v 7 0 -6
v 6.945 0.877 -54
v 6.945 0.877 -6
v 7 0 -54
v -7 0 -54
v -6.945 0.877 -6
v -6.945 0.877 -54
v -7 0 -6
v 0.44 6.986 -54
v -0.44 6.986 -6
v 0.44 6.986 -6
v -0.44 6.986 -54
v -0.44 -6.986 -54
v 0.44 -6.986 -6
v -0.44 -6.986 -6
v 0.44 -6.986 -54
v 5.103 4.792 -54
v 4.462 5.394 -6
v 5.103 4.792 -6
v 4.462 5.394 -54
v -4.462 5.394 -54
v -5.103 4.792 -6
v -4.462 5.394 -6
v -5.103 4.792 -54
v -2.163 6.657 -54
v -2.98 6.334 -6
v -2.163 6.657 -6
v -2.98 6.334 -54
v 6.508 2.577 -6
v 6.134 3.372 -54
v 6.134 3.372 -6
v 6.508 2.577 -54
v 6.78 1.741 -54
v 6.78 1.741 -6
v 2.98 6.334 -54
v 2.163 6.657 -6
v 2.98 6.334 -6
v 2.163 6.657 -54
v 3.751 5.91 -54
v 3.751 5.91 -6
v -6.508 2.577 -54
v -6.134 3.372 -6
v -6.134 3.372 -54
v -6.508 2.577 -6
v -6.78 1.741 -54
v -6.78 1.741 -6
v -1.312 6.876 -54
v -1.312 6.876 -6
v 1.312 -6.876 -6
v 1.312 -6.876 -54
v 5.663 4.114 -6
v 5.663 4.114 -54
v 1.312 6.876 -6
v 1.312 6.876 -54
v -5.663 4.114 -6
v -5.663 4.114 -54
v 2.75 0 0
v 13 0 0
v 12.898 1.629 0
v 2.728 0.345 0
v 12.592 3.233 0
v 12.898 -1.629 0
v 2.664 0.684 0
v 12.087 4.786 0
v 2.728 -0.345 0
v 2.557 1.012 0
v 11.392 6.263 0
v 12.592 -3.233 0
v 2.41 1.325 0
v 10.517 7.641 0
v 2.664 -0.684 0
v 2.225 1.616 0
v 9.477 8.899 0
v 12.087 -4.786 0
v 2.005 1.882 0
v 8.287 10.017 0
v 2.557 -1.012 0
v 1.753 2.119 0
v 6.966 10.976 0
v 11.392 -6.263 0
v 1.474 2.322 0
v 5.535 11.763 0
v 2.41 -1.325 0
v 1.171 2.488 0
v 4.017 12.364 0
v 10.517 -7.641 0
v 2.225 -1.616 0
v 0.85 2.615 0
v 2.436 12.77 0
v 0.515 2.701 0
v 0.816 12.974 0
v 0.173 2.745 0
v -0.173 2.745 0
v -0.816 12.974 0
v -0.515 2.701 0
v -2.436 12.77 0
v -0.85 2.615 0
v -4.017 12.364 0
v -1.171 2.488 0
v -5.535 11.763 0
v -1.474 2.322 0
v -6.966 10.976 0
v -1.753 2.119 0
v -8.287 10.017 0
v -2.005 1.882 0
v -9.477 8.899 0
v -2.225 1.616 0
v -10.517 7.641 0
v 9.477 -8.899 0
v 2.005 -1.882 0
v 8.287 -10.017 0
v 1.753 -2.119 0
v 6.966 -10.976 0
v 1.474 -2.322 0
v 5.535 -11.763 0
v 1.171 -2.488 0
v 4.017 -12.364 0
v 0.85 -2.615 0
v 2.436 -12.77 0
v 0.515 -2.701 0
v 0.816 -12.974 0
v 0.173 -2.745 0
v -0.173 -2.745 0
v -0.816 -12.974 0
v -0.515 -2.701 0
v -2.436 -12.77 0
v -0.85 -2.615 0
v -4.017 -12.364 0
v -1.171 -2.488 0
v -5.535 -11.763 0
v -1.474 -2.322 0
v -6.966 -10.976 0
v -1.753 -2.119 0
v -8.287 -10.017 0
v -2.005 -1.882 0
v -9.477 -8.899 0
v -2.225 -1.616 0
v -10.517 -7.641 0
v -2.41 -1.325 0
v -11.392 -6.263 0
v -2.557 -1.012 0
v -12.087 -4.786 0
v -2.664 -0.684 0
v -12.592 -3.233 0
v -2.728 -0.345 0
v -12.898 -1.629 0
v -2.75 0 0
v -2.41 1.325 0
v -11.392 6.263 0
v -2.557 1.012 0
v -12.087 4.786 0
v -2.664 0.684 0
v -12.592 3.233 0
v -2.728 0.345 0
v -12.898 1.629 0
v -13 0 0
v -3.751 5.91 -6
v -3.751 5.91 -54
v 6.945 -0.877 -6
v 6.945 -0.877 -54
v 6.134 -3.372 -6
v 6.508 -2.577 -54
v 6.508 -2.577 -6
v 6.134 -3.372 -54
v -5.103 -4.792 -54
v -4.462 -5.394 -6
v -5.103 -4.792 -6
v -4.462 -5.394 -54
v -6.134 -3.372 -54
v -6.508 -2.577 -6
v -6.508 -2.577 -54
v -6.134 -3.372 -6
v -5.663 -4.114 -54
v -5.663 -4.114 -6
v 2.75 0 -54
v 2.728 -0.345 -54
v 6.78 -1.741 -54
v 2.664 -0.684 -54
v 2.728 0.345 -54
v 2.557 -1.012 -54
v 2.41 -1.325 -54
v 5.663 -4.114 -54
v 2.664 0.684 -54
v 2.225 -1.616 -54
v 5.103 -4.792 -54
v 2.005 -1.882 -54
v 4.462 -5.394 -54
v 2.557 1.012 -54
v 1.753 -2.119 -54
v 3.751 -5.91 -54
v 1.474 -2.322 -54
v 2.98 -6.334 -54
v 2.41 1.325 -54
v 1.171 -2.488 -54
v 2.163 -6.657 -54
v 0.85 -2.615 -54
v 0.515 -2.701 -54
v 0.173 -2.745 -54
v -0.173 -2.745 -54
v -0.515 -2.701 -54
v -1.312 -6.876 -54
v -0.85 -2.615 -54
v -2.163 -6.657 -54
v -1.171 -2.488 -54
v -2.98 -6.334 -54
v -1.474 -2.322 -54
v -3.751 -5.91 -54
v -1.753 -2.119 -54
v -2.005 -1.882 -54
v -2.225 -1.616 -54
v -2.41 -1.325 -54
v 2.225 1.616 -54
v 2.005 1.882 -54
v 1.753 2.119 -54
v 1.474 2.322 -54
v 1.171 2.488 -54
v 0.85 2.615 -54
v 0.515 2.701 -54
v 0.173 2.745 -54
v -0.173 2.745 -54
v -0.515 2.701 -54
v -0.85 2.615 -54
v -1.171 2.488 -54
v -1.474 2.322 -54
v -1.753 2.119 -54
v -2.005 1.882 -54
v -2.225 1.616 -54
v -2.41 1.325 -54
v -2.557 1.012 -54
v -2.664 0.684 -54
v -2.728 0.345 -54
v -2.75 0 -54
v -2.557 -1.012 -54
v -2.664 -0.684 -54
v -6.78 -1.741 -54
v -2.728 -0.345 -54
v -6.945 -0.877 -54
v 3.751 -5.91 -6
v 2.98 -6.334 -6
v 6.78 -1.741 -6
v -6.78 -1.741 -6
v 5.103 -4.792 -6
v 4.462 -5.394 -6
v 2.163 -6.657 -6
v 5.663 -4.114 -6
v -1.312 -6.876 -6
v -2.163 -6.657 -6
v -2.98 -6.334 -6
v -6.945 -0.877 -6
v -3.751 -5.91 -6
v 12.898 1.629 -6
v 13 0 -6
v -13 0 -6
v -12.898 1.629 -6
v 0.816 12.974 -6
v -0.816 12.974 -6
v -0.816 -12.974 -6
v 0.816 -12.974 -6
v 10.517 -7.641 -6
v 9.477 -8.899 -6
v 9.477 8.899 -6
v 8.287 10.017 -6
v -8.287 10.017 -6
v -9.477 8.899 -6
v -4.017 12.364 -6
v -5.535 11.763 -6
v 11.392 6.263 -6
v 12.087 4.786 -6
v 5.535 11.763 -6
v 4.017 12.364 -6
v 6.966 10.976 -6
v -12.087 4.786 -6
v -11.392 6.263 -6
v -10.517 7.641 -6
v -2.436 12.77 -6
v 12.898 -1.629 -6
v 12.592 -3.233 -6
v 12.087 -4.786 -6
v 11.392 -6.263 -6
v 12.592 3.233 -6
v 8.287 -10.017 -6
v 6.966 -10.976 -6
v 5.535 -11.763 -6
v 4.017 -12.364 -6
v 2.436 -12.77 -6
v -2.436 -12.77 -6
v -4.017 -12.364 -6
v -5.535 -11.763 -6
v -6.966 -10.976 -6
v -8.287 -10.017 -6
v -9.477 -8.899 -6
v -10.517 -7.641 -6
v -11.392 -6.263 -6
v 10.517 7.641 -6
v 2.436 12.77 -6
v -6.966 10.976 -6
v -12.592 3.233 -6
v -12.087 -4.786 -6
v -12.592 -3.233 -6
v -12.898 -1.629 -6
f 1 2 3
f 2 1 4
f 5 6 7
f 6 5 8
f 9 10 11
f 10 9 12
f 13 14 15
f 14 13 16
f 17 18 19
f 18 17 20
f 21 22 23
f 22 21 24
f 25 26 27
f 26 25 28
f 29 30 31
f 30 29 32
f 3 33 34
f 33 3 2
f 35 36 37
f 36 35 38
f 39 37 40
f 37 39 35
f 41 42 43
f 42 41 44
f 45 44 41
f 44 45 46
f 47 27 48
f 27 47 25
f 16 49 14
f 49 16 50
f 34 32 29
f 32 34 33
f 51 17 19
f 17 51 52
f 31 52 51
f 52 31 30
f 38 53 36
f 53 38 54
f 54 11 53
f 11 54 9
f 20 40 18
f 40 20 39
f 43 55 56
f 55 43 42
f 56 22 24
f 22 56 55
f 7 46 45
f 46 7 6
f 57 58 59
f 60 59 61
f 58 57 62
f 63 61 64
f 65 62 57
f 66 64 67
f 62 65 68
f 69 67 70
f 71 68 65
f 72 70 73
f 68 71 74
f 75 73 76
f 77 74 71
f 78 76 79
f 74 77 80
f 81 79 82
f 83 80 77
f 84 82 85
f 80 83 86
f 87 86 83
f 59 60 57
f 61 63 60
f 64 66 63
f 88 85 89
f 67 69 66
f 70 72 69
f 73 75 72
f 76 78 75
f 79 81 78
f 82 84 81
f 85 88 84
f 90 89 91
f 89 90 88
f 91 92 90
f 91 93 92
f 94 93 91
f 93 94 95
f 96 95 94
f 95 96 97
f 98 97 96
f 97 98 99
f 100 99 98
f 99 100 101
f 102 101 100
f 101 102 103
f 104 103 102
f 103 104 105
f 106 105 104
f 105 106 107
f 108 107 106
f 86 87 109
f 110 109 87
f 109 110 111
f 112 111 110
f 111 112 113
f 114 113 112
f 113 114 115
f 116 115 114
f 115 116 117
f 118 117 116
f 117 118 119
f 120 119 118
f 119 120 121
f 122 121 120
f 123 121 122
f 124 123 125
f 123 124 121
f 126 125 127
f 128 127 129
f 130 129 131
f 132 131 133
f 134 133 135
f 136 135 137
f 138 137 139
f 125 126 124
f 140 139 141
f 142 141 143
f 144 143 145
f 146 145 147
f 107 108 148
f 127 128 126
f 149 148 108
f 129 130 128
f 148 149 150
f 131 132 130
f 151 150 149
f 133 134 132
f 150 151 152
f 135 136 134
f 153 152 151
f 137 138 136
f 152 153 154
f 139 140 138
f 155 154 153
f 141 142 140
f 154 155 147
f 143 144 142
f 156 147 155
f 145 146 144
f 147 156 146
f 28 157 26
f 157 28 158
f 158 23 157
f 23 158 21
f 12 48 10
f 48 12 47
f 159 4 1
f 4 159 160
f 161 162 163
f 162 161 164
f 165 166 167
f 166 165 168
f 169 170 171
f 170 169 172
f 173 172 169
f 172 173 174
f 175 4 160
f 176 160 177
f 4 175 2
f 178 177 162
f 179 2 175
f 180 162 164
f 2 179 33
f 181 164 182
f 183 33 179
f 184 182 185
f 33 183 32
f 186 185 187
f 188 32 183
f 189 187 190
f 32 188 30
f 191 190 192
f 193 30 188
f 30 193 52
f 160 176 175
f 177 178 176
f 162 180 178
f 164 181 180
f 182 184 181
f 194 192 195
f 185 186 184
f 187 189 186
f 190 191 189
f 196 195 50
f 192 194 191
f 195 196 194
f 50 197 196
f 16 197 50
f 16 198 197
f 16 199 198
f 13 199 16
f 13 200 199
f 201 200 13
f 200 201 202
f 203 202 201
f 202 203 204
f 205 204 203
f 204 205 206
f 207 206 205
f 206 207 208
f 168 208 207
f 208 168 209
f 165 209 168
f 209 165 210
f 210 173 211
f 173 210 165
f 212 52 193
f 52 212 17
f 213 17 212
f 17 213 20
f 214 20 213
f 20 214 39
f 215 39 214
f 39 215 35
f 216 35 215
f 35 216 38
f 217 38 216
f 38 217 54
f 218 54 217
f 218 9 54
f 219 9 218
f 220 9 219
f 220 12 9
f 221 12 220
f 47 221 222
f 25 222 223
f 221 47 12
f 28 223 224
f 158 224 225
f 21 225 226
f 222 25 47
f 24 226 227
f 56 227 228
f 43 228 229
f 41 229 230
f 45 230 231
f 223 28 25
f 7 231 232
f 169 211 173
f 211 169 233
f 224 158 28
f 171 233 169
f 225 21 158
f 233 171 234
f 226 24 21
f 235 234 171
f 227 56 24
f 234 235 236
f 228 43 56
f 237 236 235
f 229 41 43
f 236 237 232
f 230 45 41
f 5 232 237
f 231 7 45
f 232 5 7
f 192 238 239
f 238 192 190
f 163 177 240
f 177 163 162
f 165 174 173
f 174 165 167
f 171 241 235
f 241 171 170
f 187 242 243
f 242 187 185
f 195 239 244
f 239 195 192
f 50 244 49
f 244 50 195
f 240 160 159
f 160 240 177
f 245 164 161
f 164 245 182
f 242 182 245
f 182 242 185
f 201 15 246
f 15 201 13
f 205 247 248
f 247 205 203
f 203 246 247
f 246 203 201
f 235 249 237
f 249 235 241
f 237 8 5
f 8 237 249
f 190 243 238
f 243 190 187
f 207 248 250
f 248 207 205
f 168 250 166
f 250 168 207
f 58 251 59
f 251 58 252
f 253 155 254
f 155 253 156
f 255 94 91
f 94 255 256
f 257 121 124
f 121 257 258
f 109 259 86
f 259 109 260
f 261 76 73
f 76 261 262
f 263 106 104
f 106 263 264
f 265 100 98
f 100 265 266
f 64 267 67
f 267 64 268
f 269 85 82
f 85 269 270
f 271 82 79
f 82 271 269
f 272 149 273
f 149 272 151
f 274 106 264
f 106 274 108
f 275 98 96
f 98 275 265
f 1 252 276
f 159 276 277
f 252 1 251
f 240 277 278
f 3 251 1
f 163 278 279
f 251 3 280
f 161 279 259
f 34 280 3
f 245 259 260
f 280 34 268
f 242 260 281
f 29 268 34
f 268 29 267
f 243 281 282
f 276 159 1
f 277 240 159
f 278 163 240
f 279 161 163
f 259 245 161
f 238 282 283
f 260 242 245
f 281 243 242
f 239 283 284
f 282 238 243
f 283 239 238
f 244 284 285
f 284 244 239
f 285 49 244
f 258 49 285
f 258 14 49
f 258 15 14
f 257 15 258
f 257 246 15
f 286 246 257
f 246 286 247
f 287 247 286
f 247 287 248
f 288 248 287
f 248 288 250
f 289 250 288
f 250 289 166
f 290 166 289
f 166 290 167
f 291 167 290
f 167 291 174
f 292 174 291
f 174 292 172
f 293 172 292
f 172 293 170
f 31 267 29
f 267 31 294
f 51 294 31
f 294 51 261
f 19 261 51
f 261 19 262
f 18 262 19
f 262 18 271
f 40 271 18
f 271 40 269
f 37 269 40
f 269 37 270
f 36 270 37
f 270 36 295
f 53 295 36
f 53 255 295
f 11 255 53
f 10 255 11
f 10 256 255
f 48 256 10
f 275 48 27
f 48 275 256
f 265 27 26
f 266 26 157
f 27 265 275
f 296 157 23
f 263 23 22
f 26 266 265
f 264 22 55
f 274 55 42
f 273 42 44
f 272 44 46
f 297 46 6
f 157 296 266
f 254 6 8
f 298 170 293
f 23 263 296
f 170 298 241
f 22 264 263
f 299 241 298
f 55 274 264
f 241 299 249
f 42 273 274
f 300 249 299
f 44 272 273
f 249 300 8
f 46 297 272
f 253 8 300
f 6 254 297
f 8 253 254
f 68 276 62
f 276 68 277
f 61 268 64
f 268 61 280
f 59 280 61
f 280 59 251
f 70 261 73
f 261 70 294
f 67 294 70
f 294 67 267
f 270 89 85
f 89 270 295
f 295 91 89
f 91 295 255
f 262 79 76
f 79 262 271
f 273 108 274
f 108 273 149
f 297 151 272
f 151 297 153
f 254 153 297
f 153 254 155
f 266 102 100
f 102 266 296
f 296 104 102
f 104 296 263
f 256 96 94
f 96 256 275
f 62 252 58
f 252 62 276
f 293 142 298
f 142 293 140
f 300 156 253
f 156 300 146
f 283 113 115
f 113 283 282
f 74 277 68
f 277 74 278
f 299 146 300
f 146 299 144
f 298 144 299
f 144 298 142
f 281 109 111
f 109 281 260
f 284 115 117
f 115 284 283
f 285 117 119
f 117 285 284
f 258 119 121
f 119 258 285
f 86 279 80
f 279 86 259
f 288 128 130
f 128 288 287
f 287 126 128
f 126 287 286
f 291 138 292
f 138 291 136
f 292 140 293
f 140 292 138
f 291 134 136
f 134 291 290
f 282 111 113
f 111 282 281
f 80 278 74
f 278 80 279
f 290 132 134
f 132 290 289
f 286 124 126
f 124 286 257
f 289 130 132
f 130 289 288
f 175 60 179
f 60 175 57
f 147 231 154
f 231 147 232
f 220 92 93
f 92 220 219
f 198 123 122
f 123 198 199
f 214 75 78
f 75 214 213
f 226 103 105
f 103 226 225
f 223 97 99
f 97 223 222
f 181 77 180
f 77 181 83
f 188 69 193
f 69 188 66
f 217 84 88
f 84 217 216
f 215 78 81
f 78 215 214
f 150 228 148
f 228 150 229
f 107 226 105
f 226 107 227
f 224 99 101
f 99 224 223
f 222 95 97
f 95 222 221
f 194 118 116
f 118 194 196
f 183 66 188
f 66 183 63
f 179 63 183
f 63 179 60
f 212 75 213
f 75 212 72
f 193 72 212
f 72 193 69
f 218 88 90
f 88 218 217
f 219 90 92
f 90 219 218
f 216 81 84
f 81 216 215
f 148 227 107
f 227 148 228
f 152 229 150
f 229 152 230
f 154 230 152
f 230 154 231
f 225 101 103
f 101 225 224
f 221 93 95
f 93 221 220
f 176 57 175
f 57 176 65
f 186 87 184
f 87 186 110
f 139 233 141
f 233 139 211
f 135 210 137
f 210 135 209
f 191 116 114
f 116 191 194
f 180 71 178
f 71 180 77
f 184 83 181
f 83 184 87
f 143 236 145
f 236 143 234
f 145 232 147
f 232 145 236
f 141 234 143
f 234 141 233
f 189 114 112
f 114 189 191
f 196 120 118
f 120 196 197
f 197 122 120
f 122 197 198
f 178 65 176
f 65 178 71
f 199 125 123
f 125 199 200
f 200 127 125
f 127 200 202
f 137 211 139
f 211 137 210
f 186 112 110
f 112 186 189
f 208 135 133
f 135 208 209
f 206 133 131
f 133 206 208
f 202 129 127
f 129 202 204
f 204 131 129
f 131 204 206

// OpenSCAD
$fn = 50;


difference() {
	union() {
		translate(v = [0, 0, -54.0000000000]) {
			cylinder(h = 54, r = 7.0000000000);
		}
		translate(v = [0, 0, -6.0000000000]) {
			cylinder(h = 6, r = 13.0000000000);
		}
	}
	union() {
		#translate(v = [0, 0, -54]) {
			cylinder(h = 54, r = 2.7500000000);
		}
	}
}
